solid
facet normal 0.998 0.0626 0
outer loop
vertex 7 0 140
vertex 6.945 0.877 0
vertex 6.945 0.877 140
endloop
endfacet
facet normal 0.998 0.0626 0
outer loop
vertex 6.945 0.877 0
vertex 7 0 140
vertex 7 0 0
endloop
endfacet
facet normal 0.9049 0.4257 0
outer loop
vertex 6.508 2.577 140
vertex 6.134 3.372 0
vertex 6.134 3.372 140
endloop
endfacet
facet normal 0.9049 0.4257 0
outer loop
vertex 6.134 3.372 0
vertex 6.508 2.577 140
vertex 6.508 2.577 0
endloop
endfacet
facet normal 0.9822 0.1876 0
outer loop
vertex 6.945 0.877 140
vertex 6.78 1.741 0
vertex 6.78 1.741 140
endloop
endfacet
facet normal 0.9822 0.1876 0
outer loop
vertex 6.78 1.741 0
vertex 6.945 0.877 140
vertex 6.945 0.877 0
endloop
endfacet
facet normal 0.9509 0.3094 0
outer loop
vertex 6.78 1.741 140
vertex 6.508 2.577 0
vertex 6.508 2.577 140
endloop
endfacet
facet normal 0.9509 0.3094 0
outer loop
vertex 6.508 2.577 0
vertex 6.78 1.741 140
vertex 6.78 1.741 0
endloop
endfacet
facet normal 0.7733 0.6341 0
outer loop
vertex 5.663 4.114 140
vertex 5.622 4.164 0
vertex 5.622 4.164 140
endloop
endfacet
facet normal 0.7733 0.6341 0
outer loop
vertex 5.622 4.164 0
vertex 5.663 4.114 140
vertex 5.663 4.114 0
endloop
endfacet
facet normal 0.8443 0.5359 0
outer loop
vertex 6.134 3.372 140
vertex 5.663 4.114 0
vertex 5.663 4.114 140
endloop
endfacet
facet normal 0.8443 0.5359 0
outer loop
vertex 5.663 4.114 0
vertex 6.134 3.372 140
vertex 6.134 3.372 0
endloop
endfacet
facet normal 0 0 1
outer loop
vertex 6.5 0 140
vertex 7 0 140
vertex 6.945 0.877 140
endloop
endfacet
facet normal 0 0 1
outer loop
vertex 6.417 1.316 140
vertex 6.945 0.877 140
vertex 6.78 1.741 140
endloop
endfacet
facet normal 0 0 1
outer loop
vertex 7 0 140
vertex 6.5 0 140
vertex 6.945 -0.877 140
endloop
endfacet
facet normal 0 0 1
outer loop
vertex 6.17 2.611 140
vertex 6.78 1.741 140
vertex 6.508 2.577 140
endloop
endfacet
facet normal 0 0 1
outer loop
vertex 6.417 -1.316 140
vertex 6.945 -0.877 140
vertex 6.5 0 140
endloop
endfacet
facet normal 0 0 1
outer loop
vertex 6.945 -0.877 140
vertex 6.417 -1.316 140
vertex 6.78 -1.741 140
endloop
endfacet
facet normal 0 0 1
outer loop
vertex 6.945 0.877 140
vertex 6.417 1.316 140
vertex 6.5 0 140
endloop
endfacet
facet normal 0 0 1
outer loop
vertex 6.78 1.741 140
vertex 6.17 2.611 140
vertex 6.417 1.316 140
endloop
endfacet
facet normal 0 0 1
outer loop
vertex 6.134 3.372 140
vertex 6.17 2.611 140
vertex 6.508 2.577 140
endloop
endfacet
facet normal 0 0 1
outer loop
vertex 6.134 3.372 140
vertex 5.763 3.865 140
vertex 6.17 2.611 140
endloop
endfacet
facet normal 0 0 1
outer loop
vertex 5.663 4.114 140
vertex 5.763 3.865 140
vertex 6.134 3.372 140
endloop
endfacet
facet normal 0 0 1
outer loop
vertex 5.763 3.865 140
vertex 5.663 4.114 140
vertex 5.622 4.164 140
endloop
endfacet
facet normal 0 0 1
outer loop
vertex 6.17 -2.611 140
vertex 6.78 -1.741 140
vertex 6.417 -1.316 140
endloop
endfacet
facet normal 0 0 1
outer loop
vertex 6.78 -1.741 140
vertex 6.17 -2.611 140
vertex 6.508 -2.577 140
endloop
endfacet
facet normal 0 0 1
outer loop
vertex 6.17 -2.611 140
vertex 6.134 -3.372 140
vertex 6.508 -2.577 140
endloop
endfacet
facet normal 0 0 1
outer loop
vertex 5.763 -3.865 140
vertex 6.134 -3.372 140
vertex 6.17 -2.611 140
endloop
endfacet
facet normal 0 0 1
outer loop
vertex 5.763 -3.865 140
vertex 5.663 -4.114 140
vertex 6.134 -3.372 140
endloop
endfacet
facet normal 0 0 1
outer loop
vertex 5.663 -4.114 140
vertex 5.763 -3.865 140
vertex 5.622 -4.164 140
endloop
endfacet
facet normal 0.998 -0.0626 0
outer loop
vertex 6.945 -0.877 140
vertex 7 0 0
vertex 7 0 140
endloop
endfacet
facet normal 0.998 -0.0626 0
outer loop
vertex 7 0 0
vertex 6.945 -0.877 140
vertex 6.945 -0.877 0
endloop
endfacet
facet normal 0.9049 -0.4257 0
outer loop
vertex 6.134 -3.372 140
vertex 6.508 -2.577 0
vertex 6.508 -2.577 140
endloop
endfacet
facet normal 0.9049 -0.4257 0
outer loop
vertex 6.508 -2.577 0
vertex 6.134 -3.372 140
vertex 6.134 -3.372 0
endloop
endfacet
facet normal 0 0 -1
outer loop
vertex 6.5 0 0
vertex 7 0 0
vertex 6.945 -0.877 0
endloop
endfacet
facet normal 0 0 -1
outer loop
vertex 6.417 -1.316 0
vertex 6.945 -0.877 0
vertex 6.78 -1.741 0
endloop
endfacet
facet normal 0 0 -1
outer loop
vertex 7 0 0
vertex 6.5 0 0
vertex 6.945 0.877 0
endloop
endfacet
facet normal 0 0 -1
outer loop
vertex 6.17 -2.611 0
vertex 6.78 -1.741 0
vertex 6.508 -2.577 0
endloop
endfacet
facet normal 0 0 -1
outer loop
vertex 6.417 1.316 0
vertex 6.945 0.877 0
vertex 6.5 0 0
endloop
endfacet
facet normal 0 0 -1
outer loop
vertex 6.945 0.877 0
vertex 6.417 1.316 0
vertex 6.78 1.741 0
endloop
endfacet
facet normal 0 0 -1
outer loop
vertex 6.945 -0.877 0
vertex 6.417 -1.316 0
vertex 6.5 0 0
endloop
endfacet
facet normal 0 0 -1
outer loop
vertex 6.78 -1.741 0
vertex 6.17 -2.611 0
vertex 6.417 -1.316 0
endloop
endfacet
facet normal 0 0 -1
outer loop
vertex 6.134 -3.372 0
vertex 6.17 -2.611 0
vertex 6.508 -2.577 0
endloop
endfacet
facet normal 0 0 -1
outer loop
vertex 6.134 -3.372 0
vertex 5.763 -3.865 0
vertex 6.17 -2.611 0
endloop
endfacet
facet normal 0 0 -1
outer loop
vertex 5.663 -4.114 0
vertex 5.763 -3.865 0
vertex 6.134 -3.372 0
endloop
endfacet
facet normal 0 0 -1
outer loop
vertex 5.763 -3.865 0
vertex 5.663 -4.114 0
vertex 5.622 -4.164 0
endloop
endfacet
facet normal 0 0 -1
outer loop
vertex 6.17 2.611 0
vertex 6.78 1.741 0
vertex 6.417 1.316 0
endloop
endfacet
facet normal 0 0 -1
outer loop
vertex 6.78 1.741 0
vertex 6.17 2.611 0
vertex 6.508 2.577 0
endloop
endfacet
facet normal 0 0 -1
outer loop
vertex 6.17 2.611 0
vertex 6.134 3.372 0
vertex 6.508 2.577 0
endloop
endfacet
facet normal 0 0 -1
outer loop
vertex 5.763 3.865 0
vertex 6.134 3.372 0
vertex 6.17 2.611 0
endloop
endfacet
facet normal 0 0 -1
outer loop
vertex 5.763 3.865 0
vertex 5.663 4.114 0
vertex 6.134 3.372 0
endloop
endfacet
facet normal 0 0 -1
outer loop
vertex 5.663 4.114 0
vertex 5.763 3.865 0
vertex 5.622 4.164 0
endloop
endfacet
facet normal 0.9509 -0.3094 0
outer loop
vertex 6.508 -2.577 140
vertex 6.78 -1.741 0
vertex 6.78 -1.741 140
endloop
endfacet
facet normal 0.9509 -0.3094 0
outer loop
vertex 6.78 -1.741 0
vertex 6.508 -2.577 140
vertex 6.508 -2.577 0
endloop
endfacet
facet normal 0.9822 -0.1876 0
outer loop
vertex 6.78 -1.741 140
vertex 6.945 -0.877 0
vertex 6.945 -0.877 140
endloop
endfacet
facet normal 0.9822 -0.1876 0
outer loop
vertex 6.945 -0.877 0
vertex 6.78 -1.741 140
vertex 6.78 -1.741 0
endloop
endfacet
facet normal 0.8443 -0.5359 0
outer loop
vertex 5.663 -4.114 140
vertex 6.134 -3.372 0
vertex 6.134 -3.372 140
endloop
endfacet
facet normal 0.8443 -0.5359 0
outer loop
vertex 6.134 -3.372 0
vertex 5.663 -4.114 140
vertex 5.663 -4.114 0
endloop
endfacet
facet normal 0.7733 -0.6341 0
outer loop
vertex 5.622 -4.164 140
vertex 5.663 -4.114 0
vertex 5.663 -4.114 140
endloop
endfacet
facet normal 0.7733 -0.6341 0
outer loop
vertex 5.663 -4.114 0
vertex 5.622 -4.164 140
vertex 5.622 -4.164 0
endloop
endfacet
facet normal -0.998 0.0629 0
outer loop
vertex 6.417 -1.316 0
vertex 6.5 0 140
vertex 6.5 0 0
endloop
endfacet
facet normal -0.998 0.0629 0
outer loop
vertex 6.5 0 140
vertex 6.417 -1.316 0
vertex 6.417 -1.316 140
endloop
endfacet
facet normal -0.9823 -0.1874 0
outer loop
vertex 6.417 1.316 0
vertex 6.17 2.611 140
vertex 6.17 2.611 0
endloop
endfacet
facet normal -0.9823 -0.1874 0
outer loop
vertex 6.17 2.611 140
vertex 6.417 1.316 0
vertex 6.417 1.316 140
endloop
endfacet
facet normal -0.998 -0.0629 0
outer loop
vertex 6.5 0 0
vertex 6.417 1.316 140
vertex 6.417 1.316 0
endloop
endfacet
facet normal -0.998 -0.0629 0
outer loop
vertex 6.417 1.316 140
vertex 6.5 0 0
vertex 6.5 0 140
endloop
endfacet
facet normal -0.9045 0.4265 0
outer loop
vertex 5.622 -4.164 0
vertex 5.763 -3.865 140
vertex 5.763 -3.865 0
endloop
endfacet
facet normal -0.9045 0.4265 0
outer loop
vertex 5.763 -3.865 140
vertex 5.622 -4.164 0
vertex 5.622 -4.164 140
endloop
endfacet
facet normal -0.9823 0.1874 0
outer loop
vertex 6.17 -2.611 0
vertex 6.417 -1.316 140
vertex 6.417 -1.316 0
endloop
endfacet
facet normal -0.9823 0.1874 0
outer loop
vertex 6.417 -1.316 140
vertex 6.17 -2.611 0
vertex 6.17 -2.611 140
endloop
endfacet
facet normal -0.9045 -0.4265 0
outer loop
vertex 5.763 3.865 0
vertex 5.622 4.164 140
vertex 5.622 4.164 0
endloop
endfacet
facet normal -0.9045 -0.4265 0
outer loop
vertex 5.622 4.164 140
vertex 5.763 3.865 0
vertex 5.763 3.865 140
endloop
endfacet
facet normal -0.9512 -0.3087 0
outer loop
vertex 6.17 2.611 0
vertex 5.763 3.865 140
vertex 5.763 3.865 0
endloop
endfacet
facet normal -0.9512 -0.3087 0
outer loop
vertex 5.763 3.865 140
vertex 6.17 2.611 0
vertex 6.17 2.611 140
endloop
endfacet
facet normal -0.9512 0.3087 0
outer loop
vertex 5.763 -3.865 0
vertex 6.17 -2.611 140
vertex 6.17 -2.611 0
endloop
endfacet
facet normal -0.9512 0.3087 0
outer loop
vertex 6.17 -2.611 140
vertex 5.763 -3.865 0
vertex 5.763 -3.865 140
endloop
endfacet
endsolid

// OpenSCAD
$fn = 50;


difference() {
	union() {
		cylinder(h = 140, r = 7.0000000000);
		translate(v = [-7.0000000000, 0, 0]) {
			cylinder(h = 140, r = 7.0000000000);
		}
	}
	union() {
		cylinder(h = 140, r = 3.2500000000);
		cylinder(h = 140, r = 1.8000000000);
		cylinder(h = 140, r = 1.8000000000);
		cylinder(h = 140, r = 1.8000000000);
		translate(v = [-11.5000000000, 0, 0]) {
			hull() {
				translate(v = [-3.7500000000, 0.0000000000, 0]) {
					cylinder(h = 140, r = 10.5000000000);
				}
				translate(v = [3.7500000000, 0.0000000000, 0]) {
					cylinder(h = 140, r = 10.5000000000);
				}
				translate(v = [-3.7500000000, -0.0000000000, 0]) {
					cylinder(h = 140, r = 10.5000000000);
				}
				translate(v = [3.7500000000, -0.0000000000, 0]) {
					cylinder(h = 140, r = 10.5000000000);
				}
			}
		}
		translate(v = [-4.0000000000, 0, 0.0000000000]) {
			cylinder(h = 140, r = 10.5000000000);
		}
	}
}
